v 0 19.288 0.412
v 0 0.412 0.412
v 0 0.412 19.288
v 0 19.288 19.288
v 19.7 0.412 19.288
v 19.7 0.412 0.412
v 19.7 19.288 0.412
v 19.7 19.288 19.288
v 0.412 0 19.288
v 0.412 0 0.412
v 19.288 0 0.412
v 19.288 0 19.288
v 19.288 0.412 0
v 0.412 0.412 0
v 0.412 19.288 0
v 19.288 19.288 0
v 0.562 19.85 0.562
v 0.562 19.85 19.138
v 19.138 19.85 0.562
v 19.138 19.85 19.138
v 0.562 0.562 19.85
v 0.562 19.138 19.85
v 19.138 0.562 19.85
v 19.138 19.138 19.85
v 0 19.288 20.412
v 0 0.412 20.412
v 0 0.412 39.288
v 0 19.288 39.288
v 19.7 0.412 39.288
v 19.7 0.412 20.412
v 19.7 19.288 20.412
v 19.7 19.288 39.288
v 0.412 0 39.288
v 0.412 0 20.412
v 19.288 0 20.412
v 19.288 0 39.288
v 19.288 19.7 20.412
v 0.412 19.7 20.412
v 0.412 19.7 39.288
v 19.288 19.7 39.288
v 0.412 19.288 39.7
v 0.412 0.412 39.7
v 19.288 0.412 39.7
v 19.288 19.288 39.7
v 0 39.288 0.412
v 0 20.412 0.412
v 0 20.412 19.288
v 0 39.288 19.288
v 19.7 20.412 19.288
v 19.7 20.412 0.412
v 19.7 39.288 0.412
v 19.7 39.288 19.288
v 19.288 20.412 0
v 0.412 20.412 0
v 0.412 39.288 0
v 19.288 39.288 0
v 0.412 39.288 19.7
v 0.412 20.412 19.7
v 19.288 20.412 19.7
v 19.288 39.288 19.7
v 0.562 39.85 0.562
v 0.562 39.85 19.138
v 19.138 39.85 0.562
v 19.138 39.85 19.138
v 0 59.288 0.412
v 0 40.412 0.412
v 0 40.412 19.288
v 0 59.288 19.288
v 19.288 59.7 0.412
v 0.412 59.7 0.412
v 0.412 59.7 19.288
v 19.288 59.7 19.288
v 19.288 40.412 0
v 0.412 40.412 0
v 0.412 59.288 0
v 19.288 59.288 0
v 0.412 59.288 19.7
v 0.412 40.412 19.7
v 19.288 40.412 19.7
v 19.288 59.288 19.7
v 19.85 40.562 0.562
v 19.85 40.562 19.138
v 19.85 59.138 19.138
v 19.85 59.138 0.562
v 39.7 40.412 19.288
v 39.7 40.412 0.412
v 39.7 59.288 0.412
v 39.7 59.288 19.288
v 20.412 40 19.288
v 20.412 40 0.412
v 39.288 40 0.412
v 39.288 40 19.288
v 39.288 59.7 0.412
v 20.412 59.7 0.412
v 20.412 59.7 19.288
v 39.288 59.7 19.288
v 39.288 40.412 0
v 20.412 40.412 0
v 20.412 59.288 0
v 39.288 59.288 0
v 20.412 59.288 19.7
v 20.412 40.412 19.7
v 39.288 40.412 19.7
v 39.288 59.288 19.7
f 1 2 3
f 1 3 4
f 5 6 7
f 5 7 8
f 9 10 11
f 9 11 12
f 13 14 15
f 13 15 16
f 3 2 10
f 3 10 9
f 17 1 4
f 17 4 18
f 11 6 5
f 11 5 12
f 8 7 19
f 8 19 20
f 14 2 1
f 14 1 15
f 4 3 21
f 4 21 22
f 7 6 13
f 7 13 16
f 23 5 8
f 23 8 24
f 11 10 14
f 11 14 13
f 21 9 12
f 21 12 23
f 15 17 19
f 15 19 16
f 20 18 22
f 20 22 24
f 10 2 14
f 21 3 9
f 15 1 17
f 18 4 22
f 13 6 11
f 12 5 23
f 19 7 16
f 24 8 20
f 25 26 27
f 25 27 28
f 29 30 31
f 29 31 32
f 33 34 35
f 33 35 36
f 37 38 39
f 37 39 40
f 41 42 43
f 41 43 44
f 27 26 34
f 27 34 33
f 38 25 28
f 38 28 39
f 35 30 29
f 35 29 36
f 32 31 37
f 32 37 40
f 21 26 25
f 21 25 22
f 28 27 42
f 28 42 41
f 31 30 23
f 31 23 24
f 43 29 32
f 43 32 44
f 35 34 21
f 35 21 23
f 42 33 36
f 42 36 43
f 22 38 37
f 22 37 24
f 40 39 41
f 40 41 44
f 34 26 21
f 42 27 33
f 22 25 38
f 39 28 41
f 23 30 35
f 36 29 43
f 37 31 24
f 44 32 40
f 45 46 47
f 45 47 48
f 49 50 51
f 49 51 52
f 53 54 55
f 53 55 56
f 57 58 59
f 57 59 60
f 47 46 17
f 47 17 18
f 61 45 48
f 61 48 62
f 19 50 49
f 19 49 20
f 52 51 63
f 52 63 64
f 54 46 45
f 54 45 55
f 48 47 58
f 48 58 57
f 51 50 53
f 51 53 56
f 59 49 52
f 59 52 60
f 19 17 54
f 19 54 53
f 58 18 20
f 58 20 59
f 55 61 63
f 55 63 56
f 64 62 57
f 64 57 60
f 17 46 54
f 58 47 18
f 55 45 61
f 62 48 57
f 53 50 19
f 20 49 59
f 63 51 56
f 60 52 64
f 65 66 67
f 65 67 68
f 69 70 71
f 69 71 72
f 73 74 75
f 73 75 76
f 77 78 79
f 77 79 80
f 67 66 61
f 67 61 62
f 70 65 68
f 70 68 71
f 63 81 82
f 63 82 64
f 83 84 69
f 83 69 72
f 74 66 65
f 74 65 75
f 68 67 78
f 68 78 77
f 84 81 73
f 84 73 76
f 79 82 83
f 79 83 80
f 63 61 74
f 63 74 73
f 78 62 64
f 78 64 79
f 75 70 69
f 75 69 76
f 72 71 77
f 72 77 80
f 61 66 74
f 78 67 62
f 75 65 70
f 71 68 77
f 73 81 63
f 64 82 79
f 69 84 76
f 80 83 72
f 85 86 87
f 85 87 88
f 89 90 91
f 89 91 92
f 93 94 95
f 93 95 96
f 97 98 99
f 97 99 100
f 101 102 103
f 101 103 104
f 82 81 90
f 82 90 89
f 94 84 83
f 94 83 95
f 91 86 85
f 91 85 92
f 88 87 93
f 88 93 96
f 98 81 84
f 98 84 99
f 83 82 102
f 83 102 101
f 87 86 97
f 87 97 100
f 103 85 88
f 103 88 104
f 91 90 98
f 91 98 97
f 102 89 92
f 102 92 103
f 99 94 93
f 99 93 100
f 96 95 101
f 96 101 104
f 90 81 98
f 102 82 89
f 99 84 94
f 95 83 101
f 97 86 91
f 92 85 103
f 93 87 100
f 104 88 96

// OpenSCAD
// Wongo piece 11: End hook. GPL-3.0.
// 20 mm lattice; 0.15 mm inward surface clearance; 0.5 mm chamfer.
// Mesh is identical to the STL; changing unit scales the complete finished mesh.
unit=20;
scale([unit/20,unit/20,unit/20]) polyhedron(points=[[0,19.28786797,0.41213203],[0,0.41213203,0.41213203],[0,0.41213203,19.28786797],[0,19.28786797,19.28786797],[19.7,0.41213203,19.28786797],[19.7,0.41213203,0.41213203],[19.7,19.28786797,0.41213203],[19.7,19.28786797,19.28786797],[0.41213203,0,19.28786797],[0.41213203,0,0.41213203],[19.28786797,0,0.41213203],[19.28786797,0,19.28786797],[19.28786797,0.41213203,0],[0.41213203,0.41213203,0],[0.41213203,19.28786797,0],[19.28786797,19.28786797,0],[0.56213203,19.85,0.56213203],[0.56213203,19.85,19.13786797],[19.13786797,19.85,0.56213203],[19.13786797,19.85,19.13786797],[0.56213203,0.56213203,19.85],[0.56213203,19.13786797,19.85],[19.13786797,0.56213203,19.85],[19.13786797,19.13786797,19.85],[0,19.28786797,20.41213203],[0,0.41213203,20.41213203],[0,0.41213203,39.28786797],[0,19.28786797,39.28786797],[19.7,0.41213203,39.28786797],[19.7,0.41213203,20.41213203],[19.7,19.28786797,20.41213203],[19.7,19.28786797,39.28786797],[0.41213203,0,39.28786797],[0.41213203,0,20.41213203],[19.28786797,0,20.41213203],[19.28786797,0,39.28786797],[19.28786797,19.7,20.41213203],[0.41213203,19.7,20.41213203],[0.41213203,19.7,39.28786797],[19.28786797,19.7,39.28786797],[0.41213203,19.28786797,39.7],[0.41213203,0.41213203,39.7],[19.28786797,0.41213203,39.7],[19.28786797,19.28786797,39.7],[0,39.28786797,0.41213203],[0,20.41213203,0.41213203],[0,20.41213203,19.28786797],[0,39.28786797,19.28786797],[19.7,20.41213203,19.28786797],[19.7,20.41213203,0.41213203],[19.7,39.28786797,0.41213203],[19.7,39.28786797,19.28786797],[19.28786797,20.41213203,0],[0.41213203,20.41213203,0],[0.41213203,39.28786797,0],[19.28786797,39.28786797,0],[0.41213203,39.28786797,19.7],[0.41213203,20.41213203,19.7],[19.28786797,20.41213203,19.7],[19.28786797,39.28786797,19.7],[0.56213203,39.85,0.56213203],[0.56213203,39.85,19.13786797],[19.13786797,39.85,0.56213203],[19.13786797,39.85,19.13786797],[0,59.28786797,0.41213203],[0,40.41213203,0.41213203],[0,40.41213203,19.28786797],[0,59.28786797,19.28786797],[19.28786797,59.7,0.41213203],[0.41213203,59.7,0.41213203],[0.41213203,59.7,19.28786797],[19.28786797,59.7,19.28786797],[19.28786797,40.41213203,0],[0.41213203,40.41213203,0],[0.41213203,59.28786797,0],[19.28786797,59.28786797,0],[0.41213203,59.28786797,19.7],[0.41213203,40.41213203,19.7],[19.28786797,40.41213203,19.7],[19.28786797,59.28786797,19.7],[19.85,40.56213203,0.56213203],[19.85,40.56213203,19.13786797],[19.85,59.13786797,19.13786797],[19.85,59.13786797,0.56213203],[39.7,40.41213203,19.28786797],[39.7,40.41213203,0.41213203],[39.7,59.28786797,0.41213203],[39.7,59.28786797,19.28786797],[20.41213203,40,19.28786797],[20.41213203,40,0.41213203],[39.28786797,40,0.41213203],[39.28786797,40,19.28786797],[39.28786797,59.7,0.41213203],[20.41213203,59.7,0.41213203],[20.41213203,59.7,19.28786797],[39.28786797,59.7,19.28786797],[39.28786797,40.41213203,0],[20.41213203,40.41213203,0],[20.41213203,59.28786797,0],[39.28786797,59.28786797,0],[20.41213203,59.28786797,19.7],[20.41213203,40.41213203,19.7],[39.28786797,40.41213203,19.7],[39.28786797,59.28786797,19.7]],faces=[[2,1,0],[3,2,0],[6,5,4],[7,6,4],[10,9,8],[11,10,8],[14,13,12],[15,14,12],[9,1,2],[8,9,2],[3,0,16],[17,3,16],[4,5,10],[11,4,10],[18,6,7],[19,18,7],[0,1,13],[14,0,13],[20,2,3],[21,20,3],[12,5,6],[15,12,6],[7,4,22],[23,7,22],[13,9,10],[12,13,10],[11,8,20],[22,11,20],[18,16,14],[15,18,14],[21,17,19],[23,21,19],[13,1,9],[8,2,20],[16,0,14],[21,3,17],[10,5,12],[22,4,11],[15,6,18],[19,7,23],[26,25,24],[27,26,24],[30,29,28],[31,30,28],[34,33,32],[35,34,32],[38,37,36],[39,38,36],[42,41,40],[43,42,40],[33,25,26],[32,33,26],[27,24,37],[38,27,37],[28,29,34],[35,28,34],[36,30,31],[39,36,31],[24,25,20],[21,24,20],[41,26,27],[40,41,27],[22,29,30],[23,22,30],[31,28,42],[43,31,42],[20,33,34],[22,20,34],[35,32,41],[42,35,41],[36,37,21],[23,36,21],[40,38,39],[43,40,39],[20,25,33],[32,26,41],[37,24,21],[40,27,38],[34,29,22],[42,28,35],[23,30,36],[39,31,43],[46,45,44],[47,46,44],[50,49,48],[51,50,48],[54,53,52],[55,54,52],[58,57,56],[59,58,56],[16,45,46],[17,16,46],[47,44,60],[61,47,60],[48,49,18],[19,48,18],[62,50,51],[63,62,51],[44,45,53],[54,44,53],[57,46,47],[56,57,47],[52,49,50],[55,52,50],[51,48,58],[59,51,58],[53,16,18],[52,53,18],[19,17,57],[58,19,57],[62,60,54],[55,62,54],[56,61,63],[59,56,63],[53,45,16],[17,46,57],[60,44,54],[56,47,61],[18,49,52],[58,48,19],[55,50,62],[63,51,59],[66,65,64],[67,66,64],[70,69,68],[71,70,68],[74,73,72],[75,74,72],[78,77,76],[79,78,76],[60,65,66],[61,60,66],[67,64,69],[70,67,69],[81,80,62],[63,81,62],[68,83,82],[71,68,82],[64,65,73],[74,64,73],[77,66,67],[76,77,67],[72,80,83],[75,72,83],[82,81,78],[79,82,78],[73,60,62],[72,73,62],[63,61,77],[78,63,77],[68,69,74],[75,68,74],[76,70,71],[79,76,71],[73,65,60],[61,66,77],[69,64,74],[76,67,70],[62,80,72],[78,81,63],[75,83,68],[71,82,79],[86,85,84],[87,86,84],[90,89,88],[91,90,88],[94,93,92],[95,94,92],[98,97,96],[99,98,96],[102,101,100],[103,102,100],[89,80,81],[88,89,81],[82,83,93],[94,82,93],[84,85,90],[91,84,90],[92,86,87],[95,92,87],[83,80,97],[98,83,97],[101,81,82],[100,101,82],[96,85,86],[99,96,86],[87,84,102],[103,87,102],[97,89,90],[96,97,90],[91,88,101],[102,91,101],[92,93,98],[99,92,98],[100,94,95],[103,100,95],[97,80,89],[88,81,101],[93,83,98],[100,82,94],[90,85,96],[102,84,91],[99,86,92],[95,87,103]],convexity=10);
